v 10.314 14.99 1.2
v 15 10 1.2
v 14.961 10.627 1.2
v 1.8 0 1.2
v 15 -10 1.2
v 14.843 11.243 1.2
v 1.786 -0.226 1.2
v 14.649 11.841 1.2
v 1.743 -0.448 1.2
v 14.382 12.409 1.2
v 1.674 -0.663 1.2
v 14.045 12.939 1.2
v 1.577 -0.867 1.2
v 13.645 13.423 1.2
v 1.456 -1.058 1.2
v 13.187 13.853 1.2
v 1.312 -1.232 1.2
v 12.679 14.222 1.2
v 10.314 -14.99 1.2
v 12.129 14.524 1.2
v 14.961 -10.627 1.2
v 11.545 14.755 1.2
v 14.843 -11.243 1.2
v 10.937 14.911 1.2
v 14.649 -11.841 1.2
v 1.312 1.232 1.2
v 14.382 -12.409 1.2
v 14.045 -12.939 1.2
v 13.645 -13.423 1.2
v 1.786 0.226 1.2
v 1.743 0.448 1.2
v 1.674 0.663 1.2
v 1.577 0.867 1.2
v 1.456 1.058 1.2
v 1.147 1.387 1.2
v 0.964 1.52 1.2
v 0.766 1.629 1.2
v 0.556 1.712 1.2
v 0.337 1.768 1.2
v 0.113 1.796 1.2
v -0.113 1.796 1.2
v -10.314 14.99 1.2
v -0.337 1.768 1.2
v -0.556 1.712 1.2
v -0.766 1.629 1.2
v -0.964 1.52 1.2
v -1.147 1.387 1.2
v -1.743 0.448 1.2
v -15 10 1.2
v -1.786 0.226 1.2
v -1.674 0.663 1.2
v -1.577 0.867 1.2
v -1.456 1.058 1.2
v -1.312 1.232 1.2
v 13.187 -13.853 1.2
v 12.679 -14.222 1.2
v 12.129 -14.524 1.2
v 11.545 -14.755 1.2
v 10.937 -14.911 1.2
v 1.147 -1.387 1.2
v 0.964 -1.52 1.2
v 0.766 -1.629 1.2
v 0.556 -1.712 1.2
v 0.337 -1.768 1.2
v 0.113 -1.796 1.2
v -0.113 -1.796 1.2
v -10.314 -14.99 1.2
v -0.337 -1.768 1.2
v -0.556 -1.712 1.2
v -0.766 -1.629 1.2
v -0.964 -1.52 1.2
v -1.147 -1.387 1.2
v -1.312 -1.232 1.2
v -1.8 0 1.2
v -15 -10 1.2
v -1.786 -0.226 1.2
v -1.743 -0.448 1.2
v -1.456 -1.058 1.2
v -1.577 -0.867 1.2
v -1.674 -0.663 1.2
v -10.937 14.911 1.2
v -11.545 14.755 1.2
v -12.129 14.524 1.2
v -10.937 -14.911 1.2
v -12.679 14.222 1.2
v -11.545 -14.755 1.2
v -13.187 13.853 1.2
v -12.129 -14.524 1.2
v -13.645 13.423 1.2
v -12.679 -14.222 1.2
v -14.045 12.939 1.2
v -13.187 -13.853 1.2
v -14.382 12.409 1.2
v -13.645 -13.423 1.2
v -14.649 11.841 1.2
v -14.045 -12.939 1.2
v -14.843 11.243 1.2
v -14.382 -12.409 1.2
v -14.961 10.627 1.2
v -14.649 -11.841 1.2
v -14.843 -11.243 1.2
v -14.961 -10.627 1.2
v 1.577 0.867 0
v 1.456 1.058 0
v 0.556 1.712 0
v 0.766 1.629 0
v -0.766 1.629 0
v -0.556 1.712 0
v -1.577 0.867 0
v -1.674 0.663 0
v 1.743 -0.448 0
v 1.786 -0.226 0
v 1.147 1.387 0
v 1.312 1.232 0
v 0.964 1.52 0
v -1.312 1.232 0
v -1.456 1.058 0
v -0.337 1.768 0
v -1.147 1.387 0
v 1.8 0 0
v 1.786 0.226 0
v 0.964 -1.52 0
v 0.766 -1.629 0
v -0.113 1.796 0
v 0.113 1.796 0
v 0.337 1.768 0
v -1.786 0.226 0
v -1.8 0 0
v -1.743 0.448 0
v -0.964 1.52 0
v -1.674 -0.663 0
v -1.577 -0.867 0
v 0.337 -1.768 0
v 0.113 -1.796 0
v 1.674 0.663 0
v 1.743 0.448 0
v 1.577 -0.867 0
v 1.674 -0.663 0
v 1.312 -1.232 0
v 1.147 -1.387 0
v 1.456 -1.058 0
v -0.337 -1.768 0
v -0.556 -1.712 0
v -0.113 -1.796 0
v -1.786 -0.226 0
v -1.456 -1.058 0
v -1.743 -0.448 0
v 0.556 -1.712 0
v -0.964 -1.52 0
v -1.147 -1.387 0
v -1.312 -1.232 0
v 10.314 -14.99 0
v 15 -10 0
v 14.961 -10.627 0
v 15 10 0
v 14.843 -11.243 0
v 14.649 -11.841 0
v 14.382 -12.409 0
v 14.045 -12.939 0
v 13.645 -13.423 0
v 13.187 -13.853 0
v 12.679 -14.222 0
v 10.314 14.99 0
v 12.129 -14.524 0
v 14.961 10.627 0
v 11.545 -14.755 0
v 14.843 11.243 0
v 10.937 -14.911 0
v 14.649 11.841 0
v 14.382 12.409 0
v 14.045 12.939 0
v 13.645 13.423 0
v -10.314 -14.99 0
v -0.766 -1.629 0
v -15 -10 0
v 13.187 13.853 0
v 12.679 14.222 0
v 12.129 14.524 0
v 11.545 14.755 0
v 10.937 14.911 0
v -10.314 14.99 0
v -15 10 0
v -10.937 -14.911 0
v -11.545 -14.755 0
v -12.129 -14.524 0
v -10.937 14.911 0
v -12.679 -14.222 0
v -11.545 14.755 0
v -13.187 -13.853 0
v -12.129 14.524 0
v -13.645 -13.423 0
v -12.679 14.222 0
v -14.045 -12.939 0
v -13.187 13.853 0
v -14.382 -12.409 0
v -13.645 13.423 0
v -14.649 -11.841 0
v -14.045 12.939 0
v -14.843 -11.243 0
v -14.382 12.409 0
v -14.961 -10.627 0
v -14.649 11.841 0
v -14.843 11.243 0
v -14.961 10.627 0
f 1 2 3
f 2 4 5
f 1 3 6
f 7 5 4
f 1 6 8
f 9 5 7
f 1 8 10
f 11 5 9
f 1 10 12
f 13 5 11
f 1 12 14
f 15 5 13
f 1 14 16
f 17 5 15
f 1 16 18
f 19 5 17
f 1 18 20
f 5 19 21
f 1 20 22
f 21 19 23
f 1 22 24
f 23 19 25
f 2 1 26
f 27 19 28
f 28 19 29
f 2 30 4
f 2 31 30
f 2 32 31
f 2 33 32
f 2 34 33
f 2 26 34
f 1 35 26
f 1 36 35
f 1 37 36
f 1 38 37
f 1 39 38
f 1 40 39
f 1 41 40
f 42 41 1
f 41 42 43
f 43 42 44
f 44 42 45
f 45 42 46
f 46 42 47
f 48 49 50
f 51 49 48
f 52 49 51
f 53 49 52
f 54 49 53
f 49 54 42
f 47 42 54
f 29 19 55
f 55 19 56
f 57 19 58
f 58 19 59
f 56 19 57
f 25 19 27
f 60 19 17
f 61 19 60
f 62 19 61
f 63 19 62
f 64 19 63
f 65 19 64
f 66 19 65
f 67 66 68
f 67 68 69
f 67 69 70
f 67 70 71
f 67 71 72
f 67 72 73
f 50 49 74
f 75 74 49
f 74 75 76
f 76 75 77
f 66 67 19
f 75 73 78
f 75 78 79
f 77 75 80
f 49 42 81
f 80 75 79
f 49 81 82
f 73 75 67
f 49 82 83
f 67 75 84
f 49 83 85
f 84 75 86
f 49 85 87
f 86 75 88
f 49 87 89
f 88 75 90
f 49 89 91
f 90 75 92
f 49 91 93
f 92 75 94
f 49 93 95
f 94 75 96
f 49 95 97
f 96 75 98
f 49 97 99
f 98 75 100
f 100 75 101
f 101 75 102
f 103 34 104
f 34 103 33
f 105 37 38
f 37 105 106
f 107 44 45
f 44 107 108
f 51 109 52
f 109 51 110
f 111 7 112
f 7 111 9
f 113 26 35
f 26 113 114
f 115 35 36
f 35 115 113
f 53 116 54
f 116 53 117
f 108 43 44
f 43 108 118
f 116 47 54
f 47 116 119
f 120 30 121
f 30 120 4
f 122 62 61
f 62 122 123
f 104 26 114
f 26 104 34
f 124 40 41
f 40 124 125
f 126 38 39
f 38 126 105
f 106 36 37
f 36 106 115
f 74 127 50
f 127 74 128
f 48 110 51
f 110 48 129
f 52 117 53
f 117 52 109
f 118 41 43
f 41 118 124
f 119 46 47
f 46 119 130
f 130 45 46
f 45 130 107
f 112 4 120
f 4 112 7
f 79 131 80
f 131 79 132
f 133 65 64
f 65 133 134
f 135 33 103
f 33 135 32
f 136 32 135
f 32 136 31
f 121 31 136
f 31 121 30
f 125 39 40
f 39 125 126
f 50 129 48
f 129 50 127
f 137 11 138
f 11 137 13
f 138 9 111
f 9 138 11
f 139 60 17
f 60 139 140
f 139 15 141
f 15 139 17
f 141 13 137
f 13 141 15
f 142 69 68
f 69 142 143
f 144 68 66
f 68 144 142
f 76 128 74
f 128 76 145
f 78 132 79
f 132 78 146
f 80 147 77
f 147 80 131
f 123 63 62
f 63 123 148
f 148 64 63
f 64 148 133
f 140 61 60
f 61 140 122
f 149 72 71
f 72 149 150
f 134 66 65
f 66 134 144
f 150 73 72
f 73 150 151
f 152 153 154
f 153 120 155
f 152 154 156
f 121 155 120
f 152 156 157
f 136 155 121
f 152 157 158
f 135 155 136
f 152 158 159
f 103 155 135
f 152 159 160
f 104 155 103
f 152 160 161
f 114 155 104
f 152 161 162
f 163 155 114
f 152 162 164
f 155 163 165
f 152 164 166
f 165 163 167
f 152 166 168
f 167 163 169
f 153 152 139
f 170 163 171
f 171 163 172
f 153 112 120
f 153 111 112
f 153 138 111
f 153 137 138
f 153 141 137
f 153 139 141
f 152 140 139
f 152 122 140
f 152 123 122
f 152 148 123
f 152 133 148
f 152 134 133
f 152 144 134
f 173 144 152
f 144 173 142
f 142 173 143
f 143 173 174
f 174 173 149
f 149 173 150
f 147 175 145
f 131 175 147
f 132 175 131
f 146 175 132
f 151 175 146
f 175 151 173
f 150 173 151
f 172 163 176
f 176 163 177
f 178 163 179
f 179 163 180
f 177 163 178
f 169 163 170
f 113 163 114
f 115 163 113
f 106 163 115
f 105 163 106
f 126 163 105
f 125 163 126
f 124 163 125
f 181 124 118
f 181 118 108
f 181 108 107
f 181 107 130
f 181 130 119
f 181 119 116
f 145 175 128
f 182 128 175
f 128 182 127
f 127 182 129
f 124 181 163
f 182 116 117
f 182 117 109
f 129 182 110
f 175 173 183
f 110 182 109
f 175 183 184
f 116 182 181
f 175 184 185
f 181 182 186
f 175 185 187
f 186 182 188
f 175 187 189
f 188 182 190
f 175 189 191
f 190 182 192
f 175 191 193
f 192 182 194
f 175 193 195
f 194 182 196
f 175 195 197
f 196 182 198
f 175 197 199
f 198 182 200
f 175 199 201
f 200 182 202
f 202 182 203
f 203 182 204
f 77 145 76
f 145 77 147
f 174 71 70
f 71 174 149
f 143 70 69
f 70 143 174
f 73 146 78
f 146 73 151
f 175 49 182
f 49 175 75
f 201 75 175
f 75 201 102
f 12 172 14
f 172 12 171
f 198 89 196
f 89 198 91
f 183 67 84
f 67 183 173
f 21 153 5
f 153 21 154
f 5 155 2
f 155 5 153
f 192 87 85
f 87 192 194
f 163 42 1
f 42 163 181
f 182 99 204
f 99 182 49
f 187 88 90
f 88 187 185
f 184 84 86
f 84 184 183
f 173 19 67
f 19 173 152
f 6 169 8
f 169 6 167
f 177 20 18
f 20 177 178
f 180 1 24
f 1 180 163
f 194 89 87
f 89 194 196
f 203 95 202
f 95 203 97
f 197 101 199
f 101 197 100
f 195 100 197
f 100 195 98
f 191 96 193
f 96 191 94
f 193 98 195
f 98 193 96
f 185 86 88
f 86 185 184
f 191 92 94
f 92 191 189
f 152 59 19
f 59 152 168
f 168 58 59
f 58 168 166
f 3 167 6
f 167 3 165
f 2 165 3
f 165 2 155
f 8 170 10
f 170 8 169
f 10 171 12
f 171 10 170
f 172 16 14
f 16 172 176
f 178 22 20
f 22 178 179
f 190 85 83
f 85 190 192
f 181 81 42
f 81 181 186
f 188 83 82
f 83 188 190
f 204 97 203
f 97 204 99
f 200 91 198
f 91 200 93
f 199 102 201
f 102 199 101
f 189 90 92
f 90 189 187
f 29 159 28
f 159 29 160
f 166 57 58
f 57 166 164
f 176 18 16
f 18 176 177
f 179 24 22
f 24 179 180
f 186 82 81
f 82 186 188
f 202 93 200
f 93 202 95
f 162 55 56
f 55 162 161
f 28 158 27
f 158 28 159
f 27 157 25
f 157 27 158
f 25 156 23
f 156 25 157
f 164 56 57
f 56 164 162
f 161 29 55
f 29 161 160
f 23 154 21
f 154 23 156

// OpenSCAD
$fn = 50;


difference() {
	union() {
		hull() {
			translate(v = [-10.0000000000, 10.0000000000, 0]) {
				cylinder(h = 9, r = 5);
			}
			translate(v = [10.0000000000, 10.0000000000, 0]) {
				cylinder(h = 9, r = 5);
			}
			translate(v = [-10.0000000000, -10.0000000000, 0]) {
				cylinder(h = 9, r = 5);
			}
			translate(v = [10.0000000000, -10.0000000000, 0]) {
				cylinder(h = 9, r = 5);
			}
		}
	}
	union() {
		translate(v = [0, 0, 1.2000000000]) {
			hull() {
				translate(v = [-10.0000000000, 10.0000000000, 0]) {
					cylinder(h = 7.8000000000, r = 3.8000000000);
				}
				translate(v = [10.0000000000, 10.0000000000, 0]) {
					cylinder(h = 7.8000000000, r = 3.8000000000);
				}
				translate(v = [-10.0000000000, -10.0000000000, 0]) {
					cylinder(h = 7.8000000000, r = 3.8000000000);
				}
				translate(v = [10.0000000000, -10.0000000000, 0]) {
					cylinder(h = 7.8000000000, r = 3.8000000000);
				}
			}
		}
		#cylinder(h = 1.2000000000, r = 1.8000000000);
		translate(v = [-250.0000000000, -250.0000000000, 1.2000000000]) {
			cube(size = [500, 500, 500]);
		}
		translate(v = [-250.0000000000, -250.0000000000, 1.2000000000]) {
			cube(size = [500, 500, 500]);
		}
		translate(v = [-250.0000000000, -250.0000000000, 1.2000000000]) {
			cube(size = [500, 500, 500]);
		}
	}
}
